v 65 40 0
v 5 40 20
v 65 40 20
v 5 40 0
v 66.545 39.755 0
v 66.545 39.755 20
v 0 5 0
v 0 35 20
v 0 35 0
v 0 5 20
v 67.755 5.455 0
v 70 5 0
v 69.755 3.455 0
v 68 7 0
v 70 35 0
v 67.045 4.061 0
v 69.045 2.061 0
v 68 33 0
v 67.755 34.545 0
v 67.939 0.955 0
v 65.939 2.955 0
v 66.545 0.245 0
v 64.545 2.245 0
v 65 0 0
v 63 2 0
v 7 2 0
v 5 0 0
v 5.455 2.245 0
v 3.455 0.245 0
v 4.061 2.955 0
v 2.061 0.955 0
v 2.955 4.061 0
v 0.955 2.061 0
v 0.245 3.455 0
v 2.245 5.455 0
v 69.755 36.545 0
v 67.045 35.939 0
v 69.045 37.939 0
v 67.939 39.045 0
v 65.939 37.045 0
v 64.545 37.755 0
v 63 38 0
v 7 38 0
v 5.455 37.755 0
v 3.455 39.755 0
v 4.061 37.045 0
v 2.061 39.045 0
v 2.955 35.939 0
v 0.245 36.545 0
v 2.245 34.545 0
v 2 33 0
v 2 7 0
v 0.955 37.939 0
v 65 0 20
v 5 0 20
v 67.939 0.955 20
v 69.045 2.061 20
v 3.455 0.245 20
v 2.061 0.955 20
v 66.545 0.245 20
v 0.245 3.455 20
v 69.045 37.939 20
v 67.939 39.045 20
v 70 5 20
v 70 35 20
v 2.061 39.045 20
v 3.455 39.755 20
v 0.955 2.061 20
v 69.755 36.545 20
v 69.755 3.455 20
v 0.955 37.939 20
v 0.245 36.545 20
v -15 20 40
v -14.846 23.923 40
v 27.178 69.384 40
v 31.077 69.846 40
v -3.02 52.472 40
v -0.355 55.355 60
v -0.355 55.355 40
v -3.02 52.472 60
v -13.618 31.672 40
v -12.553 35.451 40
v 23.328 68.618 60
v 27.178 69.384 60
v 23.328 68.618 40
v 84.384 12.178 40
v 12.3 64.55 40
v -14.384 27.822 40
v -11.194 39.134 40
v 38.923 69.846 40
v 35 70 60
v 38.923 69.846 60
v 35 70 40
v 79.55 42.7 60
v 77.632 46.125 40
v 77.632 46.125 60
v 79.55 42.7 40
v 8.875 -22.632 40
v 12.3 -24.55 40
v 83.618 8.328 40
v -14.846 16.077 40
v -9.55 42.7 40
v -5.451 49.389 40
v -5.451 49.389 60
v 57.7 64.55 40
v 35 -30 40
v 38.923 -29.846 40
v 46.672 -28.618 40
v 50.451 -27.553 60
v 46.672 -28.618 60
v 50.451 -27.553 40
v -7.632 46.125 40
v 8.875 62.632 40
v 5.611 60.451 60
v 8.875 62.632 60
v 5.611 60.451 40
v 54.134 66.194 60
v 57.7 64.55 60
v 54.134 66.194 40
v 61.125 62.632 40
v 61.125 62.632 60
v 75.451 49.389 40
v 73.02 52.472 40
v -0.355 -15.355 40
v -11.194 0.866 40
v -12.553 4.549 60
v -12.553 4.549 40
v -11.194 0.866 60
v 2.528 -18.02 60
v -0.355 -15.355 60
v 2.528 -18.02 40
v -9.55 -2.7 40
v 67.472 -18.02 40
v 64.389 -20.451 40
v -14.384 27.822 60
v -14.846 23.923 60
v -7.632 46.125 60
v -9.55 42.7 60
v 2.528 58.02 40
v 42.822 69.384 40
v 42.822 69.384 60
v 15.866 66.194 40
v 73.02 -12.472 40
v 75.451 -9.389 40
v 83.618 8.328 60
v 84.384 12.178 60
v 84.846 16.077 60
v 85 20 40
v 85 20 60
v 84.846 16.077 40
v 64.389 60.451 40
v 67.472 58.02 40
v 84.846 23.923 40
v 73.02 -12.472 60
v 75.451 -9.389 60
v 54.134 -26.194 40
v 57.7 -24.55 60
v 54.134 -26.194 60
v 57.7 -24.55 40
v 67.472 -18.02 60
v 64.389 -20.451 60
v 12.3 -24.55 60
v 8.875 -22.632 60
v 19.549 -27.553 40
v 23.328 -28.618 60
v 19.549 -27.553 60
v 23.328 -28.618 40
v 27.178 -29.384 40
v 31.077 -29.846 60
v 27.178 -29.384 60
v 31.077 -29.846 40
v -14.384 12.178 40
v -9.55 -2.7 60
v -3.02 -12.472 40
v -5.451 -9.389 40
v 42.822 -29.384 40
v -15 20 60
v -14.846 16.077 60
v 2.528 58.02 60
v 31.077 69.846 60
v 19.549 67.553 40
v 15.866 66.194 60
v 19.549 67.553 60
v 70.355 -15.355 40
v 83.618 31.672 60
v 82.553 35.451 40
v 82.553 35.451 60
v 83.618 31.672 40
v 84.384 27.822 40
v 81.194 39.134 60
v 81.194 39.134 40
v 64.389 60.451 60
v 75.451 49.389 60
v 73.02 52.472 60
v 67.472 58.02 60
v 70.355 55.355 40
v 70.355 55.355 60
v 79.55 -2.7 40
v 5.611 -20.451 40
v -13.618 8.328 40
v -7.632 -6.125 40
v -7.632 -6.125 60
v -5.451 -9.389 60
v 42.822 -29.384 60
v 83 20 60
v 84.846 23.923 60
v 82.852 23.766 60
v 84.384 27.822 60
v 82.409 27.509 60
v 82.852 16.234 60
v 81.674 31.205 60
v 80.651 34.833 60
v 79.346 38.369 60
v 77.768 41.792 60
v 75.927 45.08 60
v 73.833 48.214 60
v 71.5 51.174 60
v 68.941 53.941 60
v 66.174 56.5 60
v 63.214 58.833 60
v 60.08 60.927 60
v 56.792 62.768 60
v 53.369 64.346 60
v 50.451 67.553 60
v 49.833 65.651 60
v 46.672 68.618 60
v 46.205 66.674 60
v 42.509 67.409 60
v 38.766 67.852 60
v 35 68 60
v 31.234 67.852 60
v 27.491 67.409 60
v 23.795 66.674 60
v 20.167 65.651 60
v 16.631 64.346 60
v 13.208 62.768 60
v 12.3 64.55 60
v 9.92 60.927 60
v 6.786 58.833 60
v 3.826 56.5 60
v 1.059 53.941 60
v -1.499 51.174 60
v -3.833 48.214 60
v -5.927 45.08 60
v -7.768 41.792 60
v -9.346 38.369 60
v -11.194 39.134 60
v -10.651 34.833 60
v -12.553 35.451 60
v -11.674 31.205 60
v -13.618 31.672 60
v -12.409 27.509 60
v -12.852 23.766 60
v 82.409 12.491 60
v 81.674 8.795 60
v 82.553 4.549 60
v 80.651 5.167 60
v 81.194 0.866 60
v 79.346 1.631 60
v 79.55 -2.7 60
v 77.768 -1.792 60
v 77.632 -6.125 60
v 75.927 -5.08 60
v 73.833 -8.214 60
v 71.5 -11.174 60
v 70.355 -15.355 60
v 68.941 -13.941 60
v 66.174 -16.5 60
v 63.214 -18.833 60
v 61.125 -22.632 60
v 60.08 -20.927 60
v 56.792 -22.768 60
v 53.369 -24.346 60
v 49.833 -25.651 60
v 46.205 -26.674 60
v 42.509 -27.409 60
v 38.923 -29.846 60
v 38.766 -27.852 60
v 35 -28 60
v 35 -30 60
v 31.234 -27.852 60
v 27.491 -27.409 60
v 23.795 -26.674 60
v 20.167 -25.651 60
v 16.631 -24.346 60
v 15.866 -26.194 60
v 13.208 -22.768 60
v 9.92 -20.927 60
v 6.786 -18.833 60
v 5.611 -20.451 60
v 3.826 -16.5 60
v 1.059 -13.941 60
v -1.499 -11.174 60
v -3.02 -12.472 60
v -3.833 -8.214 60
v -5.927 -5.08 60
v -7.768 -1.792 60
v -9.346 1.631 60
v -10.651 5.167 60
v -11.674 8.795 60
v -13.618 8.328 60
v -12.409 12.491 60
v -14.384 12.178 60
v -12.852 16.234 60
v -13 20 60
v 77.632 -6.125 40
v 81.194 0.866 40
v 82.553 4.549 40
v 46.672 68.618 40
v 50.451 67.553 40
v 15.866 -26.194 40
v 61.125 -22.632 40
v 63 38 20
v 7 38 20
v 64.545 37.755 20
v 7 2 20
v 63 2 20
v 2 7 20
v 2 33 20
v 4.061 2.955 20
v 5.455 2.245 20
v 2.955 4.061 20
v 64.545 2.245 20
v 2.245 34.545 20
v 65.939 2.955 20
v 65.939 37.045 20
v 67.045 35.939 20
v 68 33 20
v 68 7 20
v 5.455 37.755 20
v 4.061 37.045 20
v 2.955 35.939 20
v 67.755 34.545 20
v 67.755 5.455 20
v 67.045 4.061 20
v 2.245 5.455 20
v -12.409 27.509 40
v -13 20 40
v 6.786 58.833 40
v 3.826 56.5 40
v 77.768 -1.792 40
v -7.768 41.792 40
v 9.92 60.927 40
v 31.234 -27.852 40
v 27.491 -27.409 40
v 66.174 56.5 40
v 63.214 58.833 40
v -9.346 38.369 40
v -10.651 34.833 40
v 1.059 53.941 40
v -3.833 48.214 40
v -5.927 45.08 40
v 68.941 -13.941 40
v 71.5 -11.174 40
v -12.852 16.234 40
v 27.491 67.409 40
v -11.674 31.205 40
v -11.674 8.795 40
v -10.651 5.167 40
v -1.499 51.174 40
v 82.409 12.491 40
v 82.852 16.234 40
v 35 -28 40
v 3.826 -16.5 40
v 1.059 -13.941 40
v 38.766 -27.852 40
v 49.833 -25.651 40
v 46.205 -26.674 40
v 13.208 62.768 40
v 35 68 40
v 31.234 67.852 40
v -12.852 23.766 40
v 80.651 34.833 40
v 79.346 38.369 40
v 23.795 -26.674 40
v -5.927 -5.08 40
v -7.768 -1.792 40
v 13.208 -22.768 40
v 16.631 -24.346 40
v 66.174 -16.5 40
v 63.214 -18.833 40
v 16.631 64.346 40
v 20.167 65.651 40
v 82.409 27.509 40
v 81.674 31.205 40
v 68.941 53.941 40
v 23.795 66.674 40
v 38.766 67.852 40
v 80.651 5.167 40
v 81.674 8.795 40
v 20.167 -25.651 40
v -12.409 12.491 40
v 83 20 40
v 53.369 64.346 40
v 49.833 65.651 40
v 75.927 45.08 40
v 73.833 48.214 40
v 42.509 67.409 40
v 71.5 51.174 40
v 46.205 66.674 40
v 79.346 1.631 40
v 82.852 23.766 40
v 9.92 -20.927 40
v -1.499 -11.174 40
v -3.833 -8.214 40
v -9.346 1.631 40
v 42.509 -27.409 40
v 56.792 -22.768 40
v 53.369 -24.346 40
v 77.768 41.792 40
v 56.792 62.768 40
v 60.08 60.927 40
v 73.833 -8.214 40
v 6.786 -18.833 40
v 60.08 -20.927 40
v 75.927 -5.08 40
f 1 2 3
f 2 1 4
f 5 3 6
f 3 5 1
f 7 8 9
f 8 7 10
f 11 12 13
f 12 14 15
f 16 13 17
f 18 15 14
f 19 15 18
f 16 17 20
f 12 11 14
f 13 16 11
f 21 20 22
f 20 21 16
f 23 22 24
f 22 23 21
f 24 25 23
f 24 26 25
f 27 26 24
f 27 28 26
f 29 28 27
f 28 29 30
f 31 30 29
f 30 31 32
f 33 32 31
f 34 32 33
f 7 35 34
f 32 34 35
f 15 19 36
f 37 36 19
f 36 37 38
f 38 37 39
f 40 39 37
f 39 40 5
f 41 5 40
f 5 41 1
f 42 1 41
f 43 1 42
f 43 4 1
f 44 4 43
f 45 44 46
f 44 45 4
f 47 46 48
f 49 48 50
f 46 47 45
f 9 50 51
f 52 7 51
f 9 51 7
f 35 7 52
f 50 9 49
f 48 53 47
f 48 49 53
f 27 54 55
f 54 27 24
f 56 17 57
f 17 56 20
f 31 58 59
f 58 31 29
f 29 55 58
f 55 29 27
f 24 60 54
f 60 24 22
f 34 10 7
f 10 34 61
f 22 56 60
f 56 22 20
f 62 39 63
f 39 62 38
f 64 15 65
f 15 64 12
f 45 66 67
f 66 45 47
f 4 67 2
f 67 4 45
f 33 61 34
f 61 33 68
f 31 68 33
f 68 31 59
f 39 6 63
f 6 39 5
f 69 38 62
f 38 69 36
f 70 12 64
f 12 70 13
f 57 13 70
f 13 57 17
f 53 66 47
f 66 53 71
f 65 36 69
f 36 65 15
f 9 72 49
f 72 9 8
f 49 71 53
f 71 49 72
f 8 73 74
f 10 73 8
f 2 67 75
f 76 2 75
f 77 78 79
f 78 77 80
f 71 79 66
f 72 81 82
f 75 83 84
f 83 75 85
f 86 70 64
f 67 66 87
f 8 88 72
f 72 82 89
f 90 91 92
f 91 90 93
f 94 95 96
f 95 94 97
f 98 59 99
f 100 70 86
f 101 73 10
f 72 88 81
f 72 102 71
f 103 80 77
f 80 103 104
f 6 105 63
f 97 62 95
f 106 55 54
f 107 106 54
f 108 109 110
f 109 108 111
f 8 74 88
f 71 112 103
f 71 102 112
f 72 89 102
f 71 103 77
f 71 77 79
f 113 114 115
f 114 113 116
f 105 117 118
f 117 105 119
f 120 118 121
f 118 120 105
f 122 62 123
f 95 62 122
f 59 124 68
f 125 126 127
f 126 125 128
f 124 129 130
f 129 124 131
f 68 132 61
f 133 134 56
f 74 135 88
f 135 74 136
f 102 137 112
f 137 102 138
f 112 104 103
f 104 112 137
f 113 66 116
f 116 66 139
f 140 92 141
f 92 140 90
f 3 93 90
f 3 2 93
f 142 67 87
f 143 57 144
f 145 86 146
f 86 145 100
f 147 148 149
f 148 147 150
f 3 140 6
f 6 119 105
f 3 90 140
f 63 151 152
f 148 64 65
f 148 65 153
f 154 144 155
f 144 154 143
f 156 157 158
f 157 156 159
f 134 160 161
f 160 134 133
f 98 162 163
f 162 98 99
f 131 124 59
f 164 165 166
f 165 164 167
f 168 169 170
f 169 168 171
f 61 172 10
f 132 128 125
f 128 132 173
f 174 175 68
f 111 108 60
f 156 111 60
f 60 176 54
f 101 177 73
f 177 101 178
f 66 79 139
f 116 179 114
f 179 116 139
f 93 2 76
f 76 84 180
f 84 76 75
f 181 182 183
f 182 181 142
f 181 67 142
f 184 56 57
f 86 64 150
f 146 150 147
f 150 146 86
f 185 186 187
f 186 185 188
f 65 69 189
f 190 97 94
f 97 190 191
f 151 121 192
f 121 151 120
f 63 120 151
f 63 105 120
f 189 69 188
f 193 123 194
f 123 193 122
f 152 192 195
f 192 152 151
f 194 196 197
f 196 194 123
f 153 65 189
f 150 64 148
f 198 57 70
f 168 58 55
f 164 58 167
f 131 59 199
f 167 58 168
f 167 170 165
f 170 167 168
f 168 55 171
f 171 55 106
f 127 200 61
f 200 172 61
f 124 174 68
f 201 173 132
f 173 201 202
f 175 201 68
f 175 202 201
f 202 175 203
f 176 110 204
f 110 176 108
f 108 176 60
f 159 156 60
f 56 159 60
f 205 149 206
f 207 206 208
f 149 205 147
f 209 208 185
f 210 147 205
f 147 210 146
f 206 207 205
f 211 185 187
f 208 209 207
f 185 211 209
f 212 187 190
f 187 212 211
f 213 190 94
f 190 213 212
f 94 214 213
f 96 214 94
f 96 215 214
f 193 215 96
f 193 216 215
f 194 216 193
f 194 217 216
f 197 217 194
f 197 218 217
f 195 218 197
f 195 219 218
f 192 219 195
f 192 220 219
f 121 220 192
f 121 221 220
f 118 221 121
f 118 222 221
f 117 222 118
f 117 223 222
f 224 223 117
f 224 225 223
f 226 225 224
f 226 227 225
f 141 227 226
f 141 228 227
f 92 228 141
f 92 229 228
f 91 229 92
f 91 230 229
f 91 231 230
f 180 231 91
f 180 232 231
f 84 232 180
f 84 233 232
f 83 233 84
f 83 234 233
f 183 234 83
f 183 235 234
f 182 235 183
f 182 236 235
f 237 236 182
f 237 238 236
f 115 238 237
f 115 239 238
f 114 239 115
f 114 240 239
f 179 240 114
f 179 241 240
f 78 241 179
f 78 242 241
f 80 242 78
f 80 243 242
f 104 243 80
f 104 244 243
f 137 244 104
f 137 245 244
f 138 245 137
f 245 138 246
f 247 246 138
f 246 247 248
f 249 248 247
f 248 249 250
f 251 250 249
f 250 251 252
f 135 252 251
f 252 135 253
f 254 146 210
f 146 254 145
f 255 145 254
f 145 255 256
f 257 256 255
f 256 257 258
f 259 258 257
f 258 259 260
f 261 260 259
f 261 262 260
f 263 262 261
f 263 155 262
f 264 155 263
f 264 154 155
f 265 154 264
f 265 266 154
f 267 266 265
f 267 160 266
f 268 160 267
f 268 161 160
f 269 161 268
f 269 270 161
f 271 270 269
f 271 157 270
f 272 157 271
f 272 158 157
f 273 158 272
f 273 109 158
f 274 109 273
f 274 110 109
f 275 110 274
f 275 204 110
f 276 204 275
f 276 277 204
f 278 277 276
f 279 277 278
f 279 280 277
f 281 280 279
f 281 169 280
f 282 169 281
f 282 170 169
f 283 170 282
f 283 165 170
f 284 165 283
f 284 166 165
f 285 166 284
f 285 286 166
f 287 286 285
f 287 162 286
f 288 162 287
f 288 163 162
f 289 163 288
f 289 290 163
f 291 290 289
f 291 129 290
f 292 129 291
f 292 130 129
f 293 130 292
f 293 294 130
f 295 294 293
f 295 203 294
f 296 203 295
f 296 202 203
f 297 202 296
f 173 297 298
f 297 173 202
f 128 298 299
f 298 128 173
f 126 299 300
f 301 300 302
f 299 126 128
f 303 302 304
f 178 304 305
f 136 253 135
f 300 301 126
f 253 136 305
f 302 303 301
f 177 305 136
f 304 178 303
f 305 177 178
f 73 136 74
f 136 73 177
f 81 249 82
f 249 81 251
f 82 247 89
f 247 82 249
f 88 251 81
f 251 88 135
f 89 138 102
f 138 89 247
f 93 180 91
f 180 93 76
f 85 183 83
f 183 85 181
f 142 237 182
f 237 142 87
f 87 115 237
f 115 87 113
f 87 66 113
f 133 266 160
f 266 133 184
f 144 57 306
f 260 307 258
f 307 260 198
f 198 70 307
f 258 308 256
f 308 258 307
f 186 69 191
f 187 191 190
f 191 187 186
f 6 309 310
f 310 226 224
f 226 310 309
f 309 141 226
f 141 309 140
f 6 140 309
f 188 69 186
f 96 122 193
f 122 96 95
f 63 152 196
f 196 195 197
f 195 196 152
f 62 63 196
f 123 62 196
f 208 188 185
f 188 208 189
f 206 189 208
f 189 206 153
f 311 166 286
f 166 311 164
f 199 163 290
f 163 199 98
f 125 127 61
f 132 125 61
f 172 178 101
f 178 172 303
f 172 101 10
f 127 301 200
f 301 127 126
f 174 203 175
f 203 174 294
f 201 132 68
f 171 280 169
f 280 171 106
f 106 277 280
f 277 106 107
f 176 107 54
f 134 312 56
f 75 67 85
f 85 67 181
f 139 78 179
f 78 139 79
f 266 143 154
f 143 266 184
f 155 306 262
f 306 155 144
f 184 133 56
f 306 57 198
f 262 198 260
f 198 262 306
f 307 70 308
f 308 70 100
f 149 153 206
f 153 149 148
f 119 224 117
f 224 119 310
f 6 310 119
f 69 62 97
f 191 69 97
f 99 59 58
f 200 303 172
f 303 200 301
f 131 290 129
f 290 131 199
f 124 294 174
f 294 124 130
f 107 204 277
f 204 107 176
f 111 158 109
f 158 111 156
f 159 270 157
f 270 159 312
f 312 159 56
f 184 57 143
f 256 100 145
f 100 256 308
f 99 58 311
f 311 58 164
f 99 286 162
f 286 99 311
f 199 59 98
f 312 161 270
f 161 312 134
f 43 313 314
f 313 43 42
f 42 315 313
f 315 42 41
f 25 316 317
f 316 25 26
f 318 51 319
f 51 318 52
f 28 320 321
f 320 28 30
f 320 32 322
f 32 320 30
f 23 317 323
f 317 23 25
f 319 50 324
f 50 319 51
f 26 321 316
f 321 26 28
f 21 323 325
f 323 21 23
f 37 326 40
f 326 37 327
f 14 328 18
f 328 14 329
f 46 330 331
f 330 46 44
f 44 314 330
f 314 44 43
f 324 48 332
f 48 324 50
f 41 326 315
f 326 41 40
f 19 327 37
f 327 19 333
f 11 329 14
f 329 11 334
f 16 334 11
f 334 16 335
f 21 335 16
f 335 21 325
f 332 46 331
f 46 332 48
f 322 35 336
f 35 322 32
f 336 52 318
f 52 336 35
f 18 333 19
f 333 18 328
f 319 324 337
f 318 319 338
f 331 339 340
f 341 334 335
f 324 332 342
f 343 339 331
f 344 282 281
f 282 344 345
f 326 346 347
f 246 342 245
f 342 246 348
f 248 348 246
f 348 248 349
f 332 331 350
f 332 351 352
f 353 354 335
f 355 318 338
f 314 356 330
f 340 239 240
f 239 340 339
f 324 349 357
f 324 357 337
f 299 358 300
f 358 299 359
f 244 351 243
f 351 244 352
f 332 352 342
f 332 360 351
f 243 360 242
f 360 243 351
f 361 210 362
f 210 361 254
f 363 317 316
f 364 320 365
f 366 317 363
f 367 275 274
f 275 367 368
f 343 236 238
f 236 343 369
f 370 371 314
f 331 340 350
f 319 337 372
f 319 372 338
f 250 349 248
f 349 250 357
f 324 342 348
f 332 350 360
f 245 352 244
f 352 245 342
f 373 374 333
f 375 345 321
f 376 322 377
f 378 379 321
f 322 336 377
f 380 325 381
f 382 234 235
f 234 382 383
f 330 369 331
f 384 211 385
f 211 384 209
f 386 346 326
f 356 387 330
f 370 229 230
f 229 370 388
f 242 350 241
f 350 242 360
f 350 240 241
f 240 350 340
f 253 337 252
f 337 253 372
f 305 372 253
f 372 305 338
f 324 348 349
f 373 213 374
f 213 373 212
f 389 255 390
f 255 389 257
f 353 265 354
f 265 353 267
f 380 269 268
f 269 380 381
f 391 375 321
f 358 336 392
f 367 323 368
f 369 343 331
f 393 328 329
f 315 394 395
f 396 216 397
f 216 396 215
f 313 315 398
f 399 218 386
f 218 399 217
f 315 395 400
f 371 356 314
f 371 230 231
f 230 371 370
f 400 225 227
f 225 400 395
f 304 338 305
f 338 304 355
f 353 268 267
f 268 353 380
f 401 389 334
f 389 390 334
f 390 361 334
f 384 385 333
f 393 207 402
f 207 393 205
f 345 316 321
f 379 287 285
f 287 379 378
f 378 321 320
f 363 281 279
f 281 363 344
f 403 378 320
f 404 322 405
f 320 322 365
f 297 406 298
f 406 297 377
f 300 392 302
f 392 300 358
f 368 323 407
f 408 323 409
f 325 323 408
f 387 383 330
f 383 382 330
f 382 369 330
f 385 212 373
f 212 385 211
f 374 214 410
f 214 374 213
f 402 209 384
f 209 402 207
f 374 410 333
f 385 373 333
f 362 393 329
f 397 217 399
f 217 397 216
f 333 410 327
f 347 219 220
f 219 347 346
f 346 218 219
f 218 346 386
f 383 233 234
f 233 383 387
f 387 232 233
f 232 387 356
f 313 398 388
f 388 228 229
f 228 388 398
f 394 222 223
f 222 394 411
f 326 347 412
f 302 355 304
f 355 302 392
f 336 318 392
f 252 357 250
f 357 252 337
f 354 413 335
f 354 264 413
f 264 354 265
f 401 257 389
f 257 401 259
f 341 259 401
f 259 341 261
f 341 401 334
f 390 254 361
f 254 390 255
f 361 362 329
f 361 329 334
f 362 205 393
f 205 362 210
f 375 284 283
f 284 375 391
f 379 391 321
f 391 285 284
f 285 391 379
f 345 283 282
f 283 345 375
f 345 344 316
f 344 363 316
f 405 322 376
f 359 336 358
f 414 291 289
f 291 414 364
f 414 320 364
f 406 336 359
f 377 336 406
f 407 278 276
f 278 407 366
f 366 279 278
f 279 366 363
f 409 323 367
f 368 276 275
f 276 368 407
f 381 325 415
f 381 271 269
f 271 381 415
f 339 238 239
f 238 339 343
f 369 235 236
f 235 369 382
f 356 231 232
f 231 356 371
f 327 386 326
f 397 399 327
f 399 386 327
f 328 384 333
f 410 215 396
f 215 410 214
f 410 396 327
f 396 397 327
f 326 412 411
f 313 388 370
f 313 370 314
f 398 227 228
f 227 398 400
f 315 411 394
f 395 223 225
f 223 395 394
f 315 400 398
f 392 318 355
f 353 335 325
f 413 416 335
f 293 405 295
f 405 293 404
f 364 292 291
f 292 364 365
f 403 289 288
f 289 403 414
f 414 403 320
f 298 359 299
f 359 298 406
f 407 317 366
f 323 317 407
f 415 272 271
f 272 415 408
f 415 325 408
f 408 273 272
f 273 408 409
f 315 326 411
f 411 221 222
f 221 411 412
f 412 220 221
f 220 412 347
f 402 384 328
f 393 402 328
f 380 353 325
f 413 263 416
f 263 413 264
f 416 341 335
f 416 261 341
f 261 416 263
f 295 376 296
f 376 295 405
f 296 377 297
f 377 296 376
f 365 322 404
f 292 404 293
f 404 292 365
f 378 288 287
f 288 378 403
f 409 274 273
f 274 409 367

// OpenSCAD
radius = 5;
$fn=20;

// -----------------------------------------
// -----------------------------------------
module GenericBase(xDistance, yDistance, zHeight) {
	translate([radius,radius,0]) {
		minkowski()
		{
			cube([xDistance-(radius*2), yDistance-(radius*2), (zHeight/2)]);
			cylinder(r=radius,h=(zHeight/2));
		}
	}
}

module HollowGenericBase(xDistance, yDistance, zHeight) {
    difference() {
        union() {
            GenericBase(xDistance, yDistance, zHeight);
        }
        union() {
            translate([2,2,0]) {
                //GenericBase(xDistance-2, yDistance-2, zHeight);
            }
        }
    }
}

// -----------------------------------------
// -----------------------------------------
module Funnel(baseWidth, baseDepth, topWidth, topDepth) {
   
    GenericBase(baseWidth, baseDepth, 20);
       
    hull() {
       
        // box section
        translate([0,0,20]) {
            GenericBase(baseWidth, baseDepth, 20);
        }
                   
        // Top of the funnel
        //translate([-((topWidth-baseWidth)/2),-((topDepth-baseDepth)/2),20+20]) {
        translate([baseWidth/2,baseDepth/2,20+20]) {
            //GenericBase(topWidth, topDepth, 20);
            cylinder(d=topWidth, h=20, $fn=80);
        }
    }
        
}

difference() {
    Funnel(70,40, 100, 60);
    translate([2,2,0]) {
        Funnel(70-4,40-4, 100-4, 60-4);
    }
}
